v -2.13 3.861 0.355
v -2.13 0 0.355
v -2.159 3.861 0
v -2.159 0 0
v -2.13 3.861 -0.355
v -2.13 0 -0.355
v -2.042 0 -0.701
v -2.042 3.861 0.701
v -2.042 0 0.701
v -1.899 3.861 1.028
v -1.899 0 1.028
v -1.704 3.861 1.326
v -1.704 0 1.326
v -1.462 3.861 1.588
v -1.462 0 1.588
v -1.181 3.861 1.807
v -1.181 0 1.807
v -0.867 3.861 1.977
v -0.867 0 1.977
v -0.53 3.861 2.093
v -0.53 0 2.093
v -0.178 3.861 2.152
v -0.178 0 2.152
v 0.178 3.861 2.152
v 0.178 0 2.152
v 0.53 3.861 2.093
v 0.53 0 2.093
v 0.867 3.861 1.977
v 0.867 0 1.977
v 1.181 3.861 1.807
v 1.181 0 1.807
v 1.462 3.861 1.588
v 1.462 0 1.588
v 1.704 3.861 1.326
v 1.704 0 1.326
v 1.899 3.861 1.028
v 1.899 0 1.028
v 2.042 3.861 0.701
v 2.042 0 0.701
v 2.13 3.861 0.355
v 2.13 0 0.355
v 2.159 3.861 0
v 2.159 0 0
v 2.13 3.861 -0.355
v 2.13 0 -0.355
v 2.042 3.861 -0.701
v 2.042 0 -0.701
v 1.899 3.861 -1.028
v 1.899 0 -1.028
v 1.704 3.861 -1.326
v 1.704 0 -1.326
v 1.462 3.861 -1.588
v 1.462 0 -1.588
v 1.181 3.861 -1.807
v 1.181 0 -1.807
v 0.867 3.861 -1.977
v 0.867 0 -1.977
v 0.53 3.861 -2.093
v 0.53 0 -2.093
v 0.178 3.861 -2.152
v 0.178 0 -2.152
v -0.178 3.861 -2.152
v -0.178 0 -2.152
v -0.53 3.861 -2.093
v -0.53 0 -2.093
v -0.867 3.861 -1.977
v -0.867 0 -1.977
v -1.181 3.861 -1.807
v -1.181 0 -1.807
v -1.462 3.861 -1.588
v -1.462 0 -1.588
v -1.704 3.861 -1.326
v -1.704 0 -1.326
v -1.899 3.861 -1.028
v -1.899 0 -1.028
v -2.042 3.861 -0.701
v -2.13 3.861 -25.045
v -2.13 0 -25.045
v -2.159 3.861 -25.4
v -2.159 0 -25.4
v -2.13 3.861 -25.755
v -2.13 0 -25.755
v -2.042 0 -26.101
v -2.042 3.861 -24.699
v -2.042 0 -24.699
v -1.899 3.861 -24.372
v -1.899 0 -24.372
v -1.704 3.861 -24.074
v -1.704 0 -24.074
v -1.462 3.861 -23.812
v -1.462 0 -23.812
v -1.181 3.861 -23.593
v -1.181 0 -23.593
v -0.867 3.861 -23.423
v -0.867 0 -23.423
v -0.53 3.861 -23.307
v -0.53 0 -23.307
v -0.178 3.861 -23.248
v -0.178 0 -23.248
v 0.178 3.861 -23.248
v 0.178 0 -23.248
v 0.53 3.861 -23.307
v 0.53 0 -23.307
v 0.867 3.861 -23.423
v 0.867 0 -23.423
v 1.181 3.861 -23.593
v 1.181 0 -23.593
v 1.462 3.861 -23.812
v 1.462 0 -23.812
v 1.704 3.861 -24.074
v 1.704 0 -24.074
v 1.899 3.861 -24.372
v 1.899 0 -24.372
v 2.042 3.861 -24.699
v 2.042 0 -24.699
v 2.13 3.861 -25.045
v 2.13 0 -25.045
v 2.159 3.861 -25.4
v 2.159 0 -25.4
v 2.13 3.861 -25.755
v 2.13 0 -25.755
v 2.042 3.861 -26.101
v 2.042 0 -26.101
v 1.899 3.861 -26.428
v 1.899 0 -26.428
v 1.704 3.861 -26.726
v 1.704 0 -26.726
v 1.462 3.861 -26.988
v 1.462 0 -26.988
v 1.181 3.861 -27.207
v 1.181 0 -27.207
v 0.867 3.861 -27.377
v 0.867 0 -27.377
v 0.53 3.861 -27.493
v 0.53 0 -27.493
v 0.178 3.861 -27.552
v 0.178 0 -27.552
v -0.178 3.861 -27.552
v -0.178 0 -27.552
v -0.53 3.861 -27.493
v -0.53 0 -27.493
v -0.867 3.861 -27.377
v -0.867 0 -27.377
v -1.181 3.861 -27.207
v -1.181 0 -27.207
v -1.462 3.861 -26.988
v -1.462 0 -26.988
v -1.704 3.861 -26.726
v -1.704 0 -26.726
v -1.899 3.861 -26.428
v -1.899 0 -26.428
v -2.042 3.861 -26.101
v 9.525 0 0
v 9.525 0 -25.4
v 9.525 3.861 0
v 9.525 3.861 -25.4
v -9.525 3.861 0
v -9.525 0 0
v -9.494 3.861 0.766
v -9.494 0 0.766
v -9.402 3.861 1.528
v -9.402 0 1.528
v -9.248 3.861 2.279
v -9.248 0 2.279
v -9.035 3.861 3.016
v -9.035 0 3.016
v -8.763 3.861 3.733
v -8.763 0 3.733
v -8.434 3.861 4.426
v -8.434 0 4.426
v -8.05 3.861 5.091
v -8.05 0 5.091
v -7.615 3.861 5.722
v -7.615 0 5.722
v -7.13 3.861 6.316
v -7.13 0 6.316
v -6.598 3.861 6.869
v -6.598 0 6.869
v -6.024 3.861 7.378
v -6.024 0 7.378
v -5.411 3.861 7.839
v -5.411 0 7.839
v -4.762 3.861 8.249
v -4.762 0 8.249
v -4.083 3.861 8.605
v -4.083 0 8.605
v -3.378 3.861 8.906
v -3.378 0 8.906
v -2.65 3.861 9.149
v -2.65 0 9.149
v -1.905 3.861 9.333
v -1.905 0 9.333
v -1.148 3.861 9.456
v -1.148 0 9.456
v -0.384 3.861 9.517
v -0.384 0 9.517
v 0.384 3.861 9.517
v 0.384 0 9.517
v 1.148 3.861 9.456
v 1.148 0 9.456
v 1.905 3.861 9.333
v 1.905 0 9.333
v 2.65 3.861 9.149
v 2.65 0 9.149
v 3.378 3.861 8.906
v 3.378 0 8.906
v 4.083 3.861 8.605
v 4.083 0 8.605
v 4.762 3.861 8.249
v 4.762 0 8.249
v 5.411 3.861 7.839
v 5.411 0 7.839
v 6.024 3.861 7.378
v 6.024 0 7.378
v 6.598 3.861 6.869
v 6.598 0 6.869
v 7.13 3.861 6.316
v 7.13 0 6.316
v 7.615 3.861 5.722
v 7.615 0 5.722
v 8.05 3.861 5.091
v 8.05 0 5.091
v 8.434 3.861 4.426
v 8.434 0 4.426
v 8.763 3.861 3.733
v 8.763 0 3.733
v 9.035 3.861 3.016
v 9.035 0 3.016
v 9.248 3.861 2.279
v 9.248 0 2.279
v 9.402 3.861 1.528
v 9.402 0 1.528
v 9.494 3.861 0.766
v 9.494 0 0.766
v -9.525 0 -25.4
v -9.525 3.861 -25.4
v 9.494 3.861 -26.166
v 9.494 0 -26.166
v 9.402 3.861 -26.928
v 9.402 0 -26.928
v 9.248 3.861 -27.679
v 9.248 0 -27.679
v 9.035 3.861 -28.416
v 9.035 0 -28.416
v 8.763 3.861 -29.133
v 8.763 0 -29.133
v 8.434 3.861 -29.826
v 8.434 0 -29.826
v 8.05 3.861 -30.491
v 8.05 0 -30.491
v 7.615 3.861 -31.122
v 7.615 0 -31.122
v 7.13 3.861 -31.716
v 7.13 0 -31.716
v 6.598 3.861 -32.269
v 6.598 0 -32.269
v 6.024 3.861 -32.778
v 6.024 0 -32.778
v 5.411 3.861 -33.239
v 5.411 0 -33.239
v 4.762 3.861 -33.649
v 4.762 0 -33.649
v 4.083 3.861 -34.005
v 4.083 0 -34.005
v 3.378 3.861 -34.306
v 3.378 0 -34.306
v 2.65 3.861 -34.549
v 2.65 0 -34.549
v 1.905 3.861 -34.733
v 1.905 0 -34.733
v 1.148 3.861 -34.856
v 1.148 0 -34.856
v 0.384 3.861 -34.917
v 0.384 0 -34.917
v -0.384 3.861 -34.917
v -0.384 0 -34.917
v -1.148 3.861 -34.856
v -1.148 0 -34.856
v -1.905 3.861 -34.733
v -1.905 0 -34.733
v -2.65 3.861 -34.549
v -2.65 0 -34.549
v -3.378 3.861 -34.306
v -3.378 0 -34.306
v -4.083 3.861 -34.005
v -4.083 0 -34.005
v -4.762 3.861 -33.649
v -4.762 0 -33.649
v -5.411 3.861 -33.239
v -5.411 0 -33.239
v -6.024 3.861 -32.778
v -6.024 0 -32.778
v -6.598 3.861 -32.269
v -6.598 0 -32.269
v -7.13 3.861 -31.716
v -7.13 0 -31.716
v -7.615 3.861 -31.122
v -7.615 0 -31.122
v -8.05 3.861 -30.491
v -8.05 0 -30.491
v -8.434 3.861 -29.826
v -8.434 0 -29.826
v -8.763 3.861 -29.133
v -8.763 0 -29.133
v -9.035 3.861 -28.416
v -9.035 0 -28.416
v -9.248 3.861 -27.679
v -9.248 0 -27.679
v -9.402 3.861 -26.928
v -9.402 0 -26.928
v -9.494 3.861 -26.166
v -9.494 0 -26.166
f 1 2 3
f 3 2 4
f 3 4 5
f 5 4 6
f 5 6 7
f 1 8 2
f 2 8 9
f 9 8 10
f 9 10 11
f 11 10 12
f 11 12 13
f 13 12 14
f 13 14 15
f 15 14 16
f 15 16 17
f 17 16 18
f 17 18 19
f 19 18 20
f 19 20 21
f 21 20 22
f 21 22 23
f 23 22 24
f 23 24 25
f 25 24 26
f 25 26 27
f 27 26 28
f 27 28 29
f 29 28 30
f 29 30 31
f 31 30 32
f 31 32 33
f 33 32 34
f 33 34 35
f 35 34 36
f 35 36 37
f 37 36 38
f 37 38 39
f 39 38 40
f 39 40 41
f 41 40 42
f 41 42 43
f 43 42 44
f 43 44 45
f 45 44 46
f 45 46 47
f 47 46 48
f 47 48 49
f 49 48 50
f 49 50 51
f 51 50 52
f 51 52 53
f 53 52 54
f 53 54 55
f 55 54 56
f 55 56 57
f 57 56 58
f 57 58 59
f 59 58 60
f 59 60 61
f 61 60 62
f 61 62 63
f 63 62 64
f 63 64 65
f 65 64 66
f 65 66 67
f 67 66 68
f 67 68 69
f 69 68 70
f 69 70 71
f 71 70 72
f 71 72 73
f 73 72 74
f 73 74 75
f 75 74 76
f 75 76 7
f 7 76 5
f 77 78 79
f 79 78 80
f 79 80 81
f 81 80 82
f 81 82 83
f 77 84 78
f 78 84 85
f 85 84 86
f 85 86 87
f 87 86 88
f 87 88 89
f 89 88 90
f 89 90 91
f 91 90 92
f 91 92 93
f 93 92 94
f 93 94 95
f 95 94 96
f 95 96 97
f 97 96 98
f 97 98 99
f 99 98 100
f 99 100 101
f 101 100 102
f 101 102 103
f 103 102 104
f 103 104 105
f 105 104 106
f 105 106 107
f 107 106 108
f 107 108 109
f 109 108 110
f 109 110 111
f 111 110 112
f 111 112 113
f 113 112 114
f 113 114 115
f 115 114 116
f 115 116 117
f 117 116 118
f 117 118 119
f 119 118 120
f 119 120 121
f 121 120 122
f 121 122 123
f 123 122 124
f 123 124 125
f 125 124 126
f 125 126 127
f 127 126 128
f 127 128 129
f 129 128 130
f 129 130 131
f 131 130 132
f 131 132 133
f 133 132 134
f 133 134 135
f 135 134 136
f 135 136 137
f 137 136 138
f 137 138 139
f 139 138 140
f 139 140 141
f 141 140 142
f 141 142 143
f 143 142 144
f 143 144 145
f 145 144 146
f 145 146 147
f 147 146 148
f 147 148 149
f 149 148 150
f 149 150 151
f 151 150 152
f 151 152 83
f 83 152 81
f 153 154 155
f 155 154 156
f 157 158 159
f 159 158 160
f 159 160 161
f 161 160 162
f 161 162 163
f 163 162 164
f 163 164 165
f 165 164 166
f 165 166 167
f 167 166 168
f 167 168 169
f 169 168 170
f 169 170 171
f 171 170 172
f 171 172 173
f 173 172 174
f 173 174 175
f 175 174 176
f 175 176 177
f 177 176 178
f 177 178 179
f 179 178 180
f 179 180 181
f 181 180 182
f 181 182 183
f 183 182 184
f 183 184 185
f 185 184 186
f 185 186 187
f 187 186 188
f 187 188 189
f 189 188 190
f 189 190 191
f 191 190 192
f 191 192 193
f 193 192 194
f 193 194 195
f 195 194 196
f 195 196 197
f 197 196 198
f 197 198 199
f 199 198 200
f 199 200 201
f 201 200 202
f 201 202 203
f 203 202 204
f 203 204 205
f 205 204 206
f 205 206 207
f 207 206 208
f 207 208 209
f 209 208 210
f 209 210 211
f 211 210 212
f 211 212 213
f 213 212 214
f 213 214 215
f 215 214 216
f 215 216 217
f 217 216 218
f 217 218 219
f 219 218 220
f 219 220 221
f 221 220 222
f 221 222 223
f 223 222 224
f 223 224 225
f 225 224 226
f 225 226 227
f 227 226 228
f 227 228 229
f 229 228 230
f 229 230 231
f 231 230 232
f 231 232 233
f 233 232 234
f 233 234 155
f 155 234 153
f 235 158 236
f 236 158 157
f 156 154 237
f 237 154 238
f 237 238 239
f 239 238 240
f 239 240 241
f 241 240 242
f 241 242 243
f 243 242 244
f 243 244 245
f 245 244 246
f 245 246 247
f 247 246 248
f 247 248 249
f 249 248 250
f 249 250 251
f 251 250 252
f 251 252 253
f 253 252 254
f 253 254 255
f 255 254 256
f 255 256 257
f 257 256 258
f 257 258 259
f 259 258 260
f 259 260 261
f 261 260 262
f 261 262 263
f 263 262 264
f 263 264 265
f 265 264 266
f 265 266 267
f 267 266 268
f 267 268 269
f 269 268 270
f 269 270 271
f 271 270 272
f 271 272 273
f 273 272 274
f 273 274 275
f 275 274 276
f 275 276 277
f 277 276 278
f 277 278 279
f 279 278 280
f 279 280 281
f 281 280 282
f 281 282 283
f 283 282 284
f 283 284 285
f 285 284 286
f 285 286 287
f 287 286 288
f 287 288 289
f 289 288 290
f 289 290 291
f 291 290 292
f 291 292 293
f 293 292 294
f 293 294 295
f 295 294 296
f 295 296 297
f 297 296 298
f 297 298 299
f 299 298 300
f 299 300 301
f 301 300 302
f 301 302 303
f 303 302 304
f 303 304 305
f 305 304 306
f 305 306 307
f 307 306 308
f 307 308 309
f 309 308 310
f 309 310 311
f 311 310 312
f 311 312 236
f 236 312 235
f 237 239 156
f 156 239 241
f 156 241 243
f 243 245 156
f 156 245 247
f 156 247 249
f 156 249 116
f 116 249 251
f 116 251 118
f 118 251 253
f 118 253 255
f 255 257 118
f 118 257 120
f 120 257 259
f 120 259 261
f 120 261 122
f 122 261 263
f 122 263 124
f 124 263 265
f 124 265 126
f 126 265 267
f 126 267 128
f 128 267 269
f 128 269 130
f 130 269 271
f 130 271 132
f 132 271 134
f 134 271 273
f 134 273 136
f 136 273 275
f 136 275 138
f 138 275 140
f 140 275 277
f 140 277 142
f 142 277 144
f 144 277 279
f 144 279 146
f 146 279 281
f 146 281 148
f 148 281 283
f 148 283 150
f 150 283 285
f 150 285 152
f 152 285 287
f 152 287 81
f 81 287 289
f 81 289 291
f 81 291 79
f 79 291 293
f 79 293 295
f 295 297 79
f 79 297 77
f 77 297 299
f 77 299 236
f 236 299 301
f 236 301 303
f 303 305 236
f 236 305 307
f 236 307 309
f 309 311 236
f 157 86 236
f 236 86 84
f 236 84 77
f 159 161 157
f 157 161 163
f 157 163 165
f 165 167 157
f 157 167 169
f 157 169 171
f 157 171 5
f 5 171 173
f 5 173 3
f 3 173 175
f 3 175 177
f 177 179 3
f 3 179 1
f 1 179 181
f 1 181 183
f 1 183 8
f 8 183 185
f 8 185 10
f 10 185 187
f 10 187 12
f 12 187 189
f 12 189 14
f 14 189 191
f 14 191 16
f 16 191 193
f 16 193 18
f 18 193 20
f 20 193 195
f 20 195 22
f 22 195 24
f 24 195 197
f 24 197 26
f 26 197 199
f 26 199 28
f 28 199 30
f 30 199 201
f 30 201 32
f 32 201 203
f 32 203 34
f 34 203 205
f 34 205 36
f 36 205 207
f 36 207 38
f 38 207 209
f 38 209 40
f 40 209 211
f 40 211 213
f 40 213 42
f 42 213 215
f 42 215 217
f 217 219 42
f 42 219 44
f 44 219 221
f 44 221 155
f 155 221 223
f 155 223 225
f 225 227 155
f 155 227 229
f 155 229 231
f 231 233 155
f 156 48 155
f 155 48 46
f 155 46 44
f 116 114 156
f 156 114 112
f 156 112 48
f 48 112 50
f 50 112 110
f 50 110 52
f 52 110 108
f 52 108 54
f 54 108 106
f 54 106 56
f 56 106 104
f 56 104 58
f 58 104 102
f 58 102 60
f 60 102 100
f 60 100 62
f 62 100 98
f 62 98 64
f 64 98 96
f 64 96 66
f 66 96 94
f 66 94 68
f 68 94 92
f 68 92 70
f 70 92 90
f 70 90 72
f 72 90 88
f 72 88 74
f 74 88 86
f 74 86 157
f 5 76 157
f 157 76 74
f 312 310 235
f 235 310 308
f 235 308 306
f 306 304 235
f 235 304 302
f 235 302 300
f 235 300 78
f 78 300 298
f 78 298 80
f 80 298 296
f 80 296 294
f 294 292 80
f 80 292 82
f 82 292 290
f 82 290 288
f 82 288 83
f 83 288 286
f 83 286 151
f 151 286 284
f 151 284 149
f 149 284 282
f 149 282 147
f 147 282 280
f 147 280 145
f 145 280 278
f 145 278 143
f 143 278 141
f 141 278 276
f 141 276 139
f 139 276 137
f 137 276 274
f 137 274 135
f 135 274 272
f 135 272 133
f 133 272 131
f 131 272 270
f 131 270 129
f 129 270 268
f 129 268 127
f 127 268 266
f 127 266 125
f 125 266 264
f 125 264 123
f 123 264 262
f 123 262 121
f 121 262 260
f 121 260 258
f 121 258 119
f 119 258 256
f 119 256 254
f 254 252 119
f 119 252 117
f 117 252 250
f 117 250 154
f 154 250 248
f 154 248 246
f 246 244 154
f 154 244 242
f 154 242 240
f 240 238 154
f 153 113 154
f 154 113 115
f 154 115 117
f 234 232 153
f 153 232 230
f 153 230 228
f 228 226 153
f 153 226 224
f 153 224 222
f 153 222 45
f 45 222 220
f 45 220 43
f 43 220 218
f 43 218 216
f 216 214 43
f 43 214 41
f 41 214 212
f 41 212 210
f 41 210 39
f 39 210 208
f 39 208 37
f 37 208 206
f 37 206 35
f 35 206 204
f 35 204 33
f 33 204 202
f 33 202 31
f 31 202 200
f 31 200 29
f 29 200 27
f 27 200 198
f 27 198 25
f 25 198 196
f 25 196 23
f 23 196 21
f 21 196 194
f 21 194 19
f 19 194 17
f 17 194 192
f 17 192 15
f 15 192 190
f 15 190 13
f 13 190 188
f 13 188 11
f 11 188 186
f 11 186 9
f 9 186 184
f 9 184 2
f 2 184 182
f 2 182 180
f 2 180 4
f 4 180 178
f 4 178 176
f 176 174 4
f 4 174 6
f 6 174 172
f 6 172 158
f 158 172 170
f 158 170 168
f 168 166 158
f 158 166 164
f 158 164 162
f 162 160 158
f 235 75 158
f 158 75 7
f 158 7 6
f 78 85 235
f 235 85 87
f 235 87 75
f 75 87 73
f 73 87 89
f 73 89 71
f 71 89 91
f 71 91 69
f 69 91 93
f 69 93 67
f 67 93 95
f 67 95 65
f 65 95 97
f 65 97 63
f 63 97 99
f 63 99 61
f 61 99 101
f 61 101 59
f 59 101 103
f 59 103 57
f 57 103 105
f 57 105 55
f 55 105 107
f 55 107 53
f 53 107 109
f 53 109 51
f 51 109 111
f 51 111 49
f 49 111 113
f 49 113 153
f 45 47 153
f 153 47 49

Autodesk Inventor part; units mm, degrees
ref_plane "YZ Plane" through (0, 0, 0) normal (1, 0, 0) x (0, 1, 0)
ref_plane "XZ Plane" through (0, 0, 0) normal (0, 1, 0) x (-1, 0, 0)
ref_plane "XY Plane" through (0, 0, 0) normal (0, 0, 1) x (1, 0, 0)
sketch "Sketch1" plane through (0, 0, 0) normal (0, 1, 0) x (-1, 0, 0)
  circle A0 centre (0, 0) radius 2.159
  circle A1 centre (0, -25.4) radius 2.159
  line L0 (0, 0) -> (0, -25.4) construction
  line L1 (-9.525, 0) -> (-9.525, -25.4)
  line L2 (9.525, -25.4) -> (9.525, 0)
  arc A2 (9.525, 0) -> (-9.525, 0) centre (0, 0) ccw
  arc A3 (-9.525, -25.4) -> (9.525, -25.4) centre (0, -25.4) ccw
  point P0 (0, -12.7)
  dimension "d0" = 4.318
  dimension "d2" = 25.4
  dimension "d3" = 19.05
extrude "Extrusion1" add sketch "Sketch1" along normal blind 3.861
properties part number "Small Motor Spacer" material "PET Plastic"
